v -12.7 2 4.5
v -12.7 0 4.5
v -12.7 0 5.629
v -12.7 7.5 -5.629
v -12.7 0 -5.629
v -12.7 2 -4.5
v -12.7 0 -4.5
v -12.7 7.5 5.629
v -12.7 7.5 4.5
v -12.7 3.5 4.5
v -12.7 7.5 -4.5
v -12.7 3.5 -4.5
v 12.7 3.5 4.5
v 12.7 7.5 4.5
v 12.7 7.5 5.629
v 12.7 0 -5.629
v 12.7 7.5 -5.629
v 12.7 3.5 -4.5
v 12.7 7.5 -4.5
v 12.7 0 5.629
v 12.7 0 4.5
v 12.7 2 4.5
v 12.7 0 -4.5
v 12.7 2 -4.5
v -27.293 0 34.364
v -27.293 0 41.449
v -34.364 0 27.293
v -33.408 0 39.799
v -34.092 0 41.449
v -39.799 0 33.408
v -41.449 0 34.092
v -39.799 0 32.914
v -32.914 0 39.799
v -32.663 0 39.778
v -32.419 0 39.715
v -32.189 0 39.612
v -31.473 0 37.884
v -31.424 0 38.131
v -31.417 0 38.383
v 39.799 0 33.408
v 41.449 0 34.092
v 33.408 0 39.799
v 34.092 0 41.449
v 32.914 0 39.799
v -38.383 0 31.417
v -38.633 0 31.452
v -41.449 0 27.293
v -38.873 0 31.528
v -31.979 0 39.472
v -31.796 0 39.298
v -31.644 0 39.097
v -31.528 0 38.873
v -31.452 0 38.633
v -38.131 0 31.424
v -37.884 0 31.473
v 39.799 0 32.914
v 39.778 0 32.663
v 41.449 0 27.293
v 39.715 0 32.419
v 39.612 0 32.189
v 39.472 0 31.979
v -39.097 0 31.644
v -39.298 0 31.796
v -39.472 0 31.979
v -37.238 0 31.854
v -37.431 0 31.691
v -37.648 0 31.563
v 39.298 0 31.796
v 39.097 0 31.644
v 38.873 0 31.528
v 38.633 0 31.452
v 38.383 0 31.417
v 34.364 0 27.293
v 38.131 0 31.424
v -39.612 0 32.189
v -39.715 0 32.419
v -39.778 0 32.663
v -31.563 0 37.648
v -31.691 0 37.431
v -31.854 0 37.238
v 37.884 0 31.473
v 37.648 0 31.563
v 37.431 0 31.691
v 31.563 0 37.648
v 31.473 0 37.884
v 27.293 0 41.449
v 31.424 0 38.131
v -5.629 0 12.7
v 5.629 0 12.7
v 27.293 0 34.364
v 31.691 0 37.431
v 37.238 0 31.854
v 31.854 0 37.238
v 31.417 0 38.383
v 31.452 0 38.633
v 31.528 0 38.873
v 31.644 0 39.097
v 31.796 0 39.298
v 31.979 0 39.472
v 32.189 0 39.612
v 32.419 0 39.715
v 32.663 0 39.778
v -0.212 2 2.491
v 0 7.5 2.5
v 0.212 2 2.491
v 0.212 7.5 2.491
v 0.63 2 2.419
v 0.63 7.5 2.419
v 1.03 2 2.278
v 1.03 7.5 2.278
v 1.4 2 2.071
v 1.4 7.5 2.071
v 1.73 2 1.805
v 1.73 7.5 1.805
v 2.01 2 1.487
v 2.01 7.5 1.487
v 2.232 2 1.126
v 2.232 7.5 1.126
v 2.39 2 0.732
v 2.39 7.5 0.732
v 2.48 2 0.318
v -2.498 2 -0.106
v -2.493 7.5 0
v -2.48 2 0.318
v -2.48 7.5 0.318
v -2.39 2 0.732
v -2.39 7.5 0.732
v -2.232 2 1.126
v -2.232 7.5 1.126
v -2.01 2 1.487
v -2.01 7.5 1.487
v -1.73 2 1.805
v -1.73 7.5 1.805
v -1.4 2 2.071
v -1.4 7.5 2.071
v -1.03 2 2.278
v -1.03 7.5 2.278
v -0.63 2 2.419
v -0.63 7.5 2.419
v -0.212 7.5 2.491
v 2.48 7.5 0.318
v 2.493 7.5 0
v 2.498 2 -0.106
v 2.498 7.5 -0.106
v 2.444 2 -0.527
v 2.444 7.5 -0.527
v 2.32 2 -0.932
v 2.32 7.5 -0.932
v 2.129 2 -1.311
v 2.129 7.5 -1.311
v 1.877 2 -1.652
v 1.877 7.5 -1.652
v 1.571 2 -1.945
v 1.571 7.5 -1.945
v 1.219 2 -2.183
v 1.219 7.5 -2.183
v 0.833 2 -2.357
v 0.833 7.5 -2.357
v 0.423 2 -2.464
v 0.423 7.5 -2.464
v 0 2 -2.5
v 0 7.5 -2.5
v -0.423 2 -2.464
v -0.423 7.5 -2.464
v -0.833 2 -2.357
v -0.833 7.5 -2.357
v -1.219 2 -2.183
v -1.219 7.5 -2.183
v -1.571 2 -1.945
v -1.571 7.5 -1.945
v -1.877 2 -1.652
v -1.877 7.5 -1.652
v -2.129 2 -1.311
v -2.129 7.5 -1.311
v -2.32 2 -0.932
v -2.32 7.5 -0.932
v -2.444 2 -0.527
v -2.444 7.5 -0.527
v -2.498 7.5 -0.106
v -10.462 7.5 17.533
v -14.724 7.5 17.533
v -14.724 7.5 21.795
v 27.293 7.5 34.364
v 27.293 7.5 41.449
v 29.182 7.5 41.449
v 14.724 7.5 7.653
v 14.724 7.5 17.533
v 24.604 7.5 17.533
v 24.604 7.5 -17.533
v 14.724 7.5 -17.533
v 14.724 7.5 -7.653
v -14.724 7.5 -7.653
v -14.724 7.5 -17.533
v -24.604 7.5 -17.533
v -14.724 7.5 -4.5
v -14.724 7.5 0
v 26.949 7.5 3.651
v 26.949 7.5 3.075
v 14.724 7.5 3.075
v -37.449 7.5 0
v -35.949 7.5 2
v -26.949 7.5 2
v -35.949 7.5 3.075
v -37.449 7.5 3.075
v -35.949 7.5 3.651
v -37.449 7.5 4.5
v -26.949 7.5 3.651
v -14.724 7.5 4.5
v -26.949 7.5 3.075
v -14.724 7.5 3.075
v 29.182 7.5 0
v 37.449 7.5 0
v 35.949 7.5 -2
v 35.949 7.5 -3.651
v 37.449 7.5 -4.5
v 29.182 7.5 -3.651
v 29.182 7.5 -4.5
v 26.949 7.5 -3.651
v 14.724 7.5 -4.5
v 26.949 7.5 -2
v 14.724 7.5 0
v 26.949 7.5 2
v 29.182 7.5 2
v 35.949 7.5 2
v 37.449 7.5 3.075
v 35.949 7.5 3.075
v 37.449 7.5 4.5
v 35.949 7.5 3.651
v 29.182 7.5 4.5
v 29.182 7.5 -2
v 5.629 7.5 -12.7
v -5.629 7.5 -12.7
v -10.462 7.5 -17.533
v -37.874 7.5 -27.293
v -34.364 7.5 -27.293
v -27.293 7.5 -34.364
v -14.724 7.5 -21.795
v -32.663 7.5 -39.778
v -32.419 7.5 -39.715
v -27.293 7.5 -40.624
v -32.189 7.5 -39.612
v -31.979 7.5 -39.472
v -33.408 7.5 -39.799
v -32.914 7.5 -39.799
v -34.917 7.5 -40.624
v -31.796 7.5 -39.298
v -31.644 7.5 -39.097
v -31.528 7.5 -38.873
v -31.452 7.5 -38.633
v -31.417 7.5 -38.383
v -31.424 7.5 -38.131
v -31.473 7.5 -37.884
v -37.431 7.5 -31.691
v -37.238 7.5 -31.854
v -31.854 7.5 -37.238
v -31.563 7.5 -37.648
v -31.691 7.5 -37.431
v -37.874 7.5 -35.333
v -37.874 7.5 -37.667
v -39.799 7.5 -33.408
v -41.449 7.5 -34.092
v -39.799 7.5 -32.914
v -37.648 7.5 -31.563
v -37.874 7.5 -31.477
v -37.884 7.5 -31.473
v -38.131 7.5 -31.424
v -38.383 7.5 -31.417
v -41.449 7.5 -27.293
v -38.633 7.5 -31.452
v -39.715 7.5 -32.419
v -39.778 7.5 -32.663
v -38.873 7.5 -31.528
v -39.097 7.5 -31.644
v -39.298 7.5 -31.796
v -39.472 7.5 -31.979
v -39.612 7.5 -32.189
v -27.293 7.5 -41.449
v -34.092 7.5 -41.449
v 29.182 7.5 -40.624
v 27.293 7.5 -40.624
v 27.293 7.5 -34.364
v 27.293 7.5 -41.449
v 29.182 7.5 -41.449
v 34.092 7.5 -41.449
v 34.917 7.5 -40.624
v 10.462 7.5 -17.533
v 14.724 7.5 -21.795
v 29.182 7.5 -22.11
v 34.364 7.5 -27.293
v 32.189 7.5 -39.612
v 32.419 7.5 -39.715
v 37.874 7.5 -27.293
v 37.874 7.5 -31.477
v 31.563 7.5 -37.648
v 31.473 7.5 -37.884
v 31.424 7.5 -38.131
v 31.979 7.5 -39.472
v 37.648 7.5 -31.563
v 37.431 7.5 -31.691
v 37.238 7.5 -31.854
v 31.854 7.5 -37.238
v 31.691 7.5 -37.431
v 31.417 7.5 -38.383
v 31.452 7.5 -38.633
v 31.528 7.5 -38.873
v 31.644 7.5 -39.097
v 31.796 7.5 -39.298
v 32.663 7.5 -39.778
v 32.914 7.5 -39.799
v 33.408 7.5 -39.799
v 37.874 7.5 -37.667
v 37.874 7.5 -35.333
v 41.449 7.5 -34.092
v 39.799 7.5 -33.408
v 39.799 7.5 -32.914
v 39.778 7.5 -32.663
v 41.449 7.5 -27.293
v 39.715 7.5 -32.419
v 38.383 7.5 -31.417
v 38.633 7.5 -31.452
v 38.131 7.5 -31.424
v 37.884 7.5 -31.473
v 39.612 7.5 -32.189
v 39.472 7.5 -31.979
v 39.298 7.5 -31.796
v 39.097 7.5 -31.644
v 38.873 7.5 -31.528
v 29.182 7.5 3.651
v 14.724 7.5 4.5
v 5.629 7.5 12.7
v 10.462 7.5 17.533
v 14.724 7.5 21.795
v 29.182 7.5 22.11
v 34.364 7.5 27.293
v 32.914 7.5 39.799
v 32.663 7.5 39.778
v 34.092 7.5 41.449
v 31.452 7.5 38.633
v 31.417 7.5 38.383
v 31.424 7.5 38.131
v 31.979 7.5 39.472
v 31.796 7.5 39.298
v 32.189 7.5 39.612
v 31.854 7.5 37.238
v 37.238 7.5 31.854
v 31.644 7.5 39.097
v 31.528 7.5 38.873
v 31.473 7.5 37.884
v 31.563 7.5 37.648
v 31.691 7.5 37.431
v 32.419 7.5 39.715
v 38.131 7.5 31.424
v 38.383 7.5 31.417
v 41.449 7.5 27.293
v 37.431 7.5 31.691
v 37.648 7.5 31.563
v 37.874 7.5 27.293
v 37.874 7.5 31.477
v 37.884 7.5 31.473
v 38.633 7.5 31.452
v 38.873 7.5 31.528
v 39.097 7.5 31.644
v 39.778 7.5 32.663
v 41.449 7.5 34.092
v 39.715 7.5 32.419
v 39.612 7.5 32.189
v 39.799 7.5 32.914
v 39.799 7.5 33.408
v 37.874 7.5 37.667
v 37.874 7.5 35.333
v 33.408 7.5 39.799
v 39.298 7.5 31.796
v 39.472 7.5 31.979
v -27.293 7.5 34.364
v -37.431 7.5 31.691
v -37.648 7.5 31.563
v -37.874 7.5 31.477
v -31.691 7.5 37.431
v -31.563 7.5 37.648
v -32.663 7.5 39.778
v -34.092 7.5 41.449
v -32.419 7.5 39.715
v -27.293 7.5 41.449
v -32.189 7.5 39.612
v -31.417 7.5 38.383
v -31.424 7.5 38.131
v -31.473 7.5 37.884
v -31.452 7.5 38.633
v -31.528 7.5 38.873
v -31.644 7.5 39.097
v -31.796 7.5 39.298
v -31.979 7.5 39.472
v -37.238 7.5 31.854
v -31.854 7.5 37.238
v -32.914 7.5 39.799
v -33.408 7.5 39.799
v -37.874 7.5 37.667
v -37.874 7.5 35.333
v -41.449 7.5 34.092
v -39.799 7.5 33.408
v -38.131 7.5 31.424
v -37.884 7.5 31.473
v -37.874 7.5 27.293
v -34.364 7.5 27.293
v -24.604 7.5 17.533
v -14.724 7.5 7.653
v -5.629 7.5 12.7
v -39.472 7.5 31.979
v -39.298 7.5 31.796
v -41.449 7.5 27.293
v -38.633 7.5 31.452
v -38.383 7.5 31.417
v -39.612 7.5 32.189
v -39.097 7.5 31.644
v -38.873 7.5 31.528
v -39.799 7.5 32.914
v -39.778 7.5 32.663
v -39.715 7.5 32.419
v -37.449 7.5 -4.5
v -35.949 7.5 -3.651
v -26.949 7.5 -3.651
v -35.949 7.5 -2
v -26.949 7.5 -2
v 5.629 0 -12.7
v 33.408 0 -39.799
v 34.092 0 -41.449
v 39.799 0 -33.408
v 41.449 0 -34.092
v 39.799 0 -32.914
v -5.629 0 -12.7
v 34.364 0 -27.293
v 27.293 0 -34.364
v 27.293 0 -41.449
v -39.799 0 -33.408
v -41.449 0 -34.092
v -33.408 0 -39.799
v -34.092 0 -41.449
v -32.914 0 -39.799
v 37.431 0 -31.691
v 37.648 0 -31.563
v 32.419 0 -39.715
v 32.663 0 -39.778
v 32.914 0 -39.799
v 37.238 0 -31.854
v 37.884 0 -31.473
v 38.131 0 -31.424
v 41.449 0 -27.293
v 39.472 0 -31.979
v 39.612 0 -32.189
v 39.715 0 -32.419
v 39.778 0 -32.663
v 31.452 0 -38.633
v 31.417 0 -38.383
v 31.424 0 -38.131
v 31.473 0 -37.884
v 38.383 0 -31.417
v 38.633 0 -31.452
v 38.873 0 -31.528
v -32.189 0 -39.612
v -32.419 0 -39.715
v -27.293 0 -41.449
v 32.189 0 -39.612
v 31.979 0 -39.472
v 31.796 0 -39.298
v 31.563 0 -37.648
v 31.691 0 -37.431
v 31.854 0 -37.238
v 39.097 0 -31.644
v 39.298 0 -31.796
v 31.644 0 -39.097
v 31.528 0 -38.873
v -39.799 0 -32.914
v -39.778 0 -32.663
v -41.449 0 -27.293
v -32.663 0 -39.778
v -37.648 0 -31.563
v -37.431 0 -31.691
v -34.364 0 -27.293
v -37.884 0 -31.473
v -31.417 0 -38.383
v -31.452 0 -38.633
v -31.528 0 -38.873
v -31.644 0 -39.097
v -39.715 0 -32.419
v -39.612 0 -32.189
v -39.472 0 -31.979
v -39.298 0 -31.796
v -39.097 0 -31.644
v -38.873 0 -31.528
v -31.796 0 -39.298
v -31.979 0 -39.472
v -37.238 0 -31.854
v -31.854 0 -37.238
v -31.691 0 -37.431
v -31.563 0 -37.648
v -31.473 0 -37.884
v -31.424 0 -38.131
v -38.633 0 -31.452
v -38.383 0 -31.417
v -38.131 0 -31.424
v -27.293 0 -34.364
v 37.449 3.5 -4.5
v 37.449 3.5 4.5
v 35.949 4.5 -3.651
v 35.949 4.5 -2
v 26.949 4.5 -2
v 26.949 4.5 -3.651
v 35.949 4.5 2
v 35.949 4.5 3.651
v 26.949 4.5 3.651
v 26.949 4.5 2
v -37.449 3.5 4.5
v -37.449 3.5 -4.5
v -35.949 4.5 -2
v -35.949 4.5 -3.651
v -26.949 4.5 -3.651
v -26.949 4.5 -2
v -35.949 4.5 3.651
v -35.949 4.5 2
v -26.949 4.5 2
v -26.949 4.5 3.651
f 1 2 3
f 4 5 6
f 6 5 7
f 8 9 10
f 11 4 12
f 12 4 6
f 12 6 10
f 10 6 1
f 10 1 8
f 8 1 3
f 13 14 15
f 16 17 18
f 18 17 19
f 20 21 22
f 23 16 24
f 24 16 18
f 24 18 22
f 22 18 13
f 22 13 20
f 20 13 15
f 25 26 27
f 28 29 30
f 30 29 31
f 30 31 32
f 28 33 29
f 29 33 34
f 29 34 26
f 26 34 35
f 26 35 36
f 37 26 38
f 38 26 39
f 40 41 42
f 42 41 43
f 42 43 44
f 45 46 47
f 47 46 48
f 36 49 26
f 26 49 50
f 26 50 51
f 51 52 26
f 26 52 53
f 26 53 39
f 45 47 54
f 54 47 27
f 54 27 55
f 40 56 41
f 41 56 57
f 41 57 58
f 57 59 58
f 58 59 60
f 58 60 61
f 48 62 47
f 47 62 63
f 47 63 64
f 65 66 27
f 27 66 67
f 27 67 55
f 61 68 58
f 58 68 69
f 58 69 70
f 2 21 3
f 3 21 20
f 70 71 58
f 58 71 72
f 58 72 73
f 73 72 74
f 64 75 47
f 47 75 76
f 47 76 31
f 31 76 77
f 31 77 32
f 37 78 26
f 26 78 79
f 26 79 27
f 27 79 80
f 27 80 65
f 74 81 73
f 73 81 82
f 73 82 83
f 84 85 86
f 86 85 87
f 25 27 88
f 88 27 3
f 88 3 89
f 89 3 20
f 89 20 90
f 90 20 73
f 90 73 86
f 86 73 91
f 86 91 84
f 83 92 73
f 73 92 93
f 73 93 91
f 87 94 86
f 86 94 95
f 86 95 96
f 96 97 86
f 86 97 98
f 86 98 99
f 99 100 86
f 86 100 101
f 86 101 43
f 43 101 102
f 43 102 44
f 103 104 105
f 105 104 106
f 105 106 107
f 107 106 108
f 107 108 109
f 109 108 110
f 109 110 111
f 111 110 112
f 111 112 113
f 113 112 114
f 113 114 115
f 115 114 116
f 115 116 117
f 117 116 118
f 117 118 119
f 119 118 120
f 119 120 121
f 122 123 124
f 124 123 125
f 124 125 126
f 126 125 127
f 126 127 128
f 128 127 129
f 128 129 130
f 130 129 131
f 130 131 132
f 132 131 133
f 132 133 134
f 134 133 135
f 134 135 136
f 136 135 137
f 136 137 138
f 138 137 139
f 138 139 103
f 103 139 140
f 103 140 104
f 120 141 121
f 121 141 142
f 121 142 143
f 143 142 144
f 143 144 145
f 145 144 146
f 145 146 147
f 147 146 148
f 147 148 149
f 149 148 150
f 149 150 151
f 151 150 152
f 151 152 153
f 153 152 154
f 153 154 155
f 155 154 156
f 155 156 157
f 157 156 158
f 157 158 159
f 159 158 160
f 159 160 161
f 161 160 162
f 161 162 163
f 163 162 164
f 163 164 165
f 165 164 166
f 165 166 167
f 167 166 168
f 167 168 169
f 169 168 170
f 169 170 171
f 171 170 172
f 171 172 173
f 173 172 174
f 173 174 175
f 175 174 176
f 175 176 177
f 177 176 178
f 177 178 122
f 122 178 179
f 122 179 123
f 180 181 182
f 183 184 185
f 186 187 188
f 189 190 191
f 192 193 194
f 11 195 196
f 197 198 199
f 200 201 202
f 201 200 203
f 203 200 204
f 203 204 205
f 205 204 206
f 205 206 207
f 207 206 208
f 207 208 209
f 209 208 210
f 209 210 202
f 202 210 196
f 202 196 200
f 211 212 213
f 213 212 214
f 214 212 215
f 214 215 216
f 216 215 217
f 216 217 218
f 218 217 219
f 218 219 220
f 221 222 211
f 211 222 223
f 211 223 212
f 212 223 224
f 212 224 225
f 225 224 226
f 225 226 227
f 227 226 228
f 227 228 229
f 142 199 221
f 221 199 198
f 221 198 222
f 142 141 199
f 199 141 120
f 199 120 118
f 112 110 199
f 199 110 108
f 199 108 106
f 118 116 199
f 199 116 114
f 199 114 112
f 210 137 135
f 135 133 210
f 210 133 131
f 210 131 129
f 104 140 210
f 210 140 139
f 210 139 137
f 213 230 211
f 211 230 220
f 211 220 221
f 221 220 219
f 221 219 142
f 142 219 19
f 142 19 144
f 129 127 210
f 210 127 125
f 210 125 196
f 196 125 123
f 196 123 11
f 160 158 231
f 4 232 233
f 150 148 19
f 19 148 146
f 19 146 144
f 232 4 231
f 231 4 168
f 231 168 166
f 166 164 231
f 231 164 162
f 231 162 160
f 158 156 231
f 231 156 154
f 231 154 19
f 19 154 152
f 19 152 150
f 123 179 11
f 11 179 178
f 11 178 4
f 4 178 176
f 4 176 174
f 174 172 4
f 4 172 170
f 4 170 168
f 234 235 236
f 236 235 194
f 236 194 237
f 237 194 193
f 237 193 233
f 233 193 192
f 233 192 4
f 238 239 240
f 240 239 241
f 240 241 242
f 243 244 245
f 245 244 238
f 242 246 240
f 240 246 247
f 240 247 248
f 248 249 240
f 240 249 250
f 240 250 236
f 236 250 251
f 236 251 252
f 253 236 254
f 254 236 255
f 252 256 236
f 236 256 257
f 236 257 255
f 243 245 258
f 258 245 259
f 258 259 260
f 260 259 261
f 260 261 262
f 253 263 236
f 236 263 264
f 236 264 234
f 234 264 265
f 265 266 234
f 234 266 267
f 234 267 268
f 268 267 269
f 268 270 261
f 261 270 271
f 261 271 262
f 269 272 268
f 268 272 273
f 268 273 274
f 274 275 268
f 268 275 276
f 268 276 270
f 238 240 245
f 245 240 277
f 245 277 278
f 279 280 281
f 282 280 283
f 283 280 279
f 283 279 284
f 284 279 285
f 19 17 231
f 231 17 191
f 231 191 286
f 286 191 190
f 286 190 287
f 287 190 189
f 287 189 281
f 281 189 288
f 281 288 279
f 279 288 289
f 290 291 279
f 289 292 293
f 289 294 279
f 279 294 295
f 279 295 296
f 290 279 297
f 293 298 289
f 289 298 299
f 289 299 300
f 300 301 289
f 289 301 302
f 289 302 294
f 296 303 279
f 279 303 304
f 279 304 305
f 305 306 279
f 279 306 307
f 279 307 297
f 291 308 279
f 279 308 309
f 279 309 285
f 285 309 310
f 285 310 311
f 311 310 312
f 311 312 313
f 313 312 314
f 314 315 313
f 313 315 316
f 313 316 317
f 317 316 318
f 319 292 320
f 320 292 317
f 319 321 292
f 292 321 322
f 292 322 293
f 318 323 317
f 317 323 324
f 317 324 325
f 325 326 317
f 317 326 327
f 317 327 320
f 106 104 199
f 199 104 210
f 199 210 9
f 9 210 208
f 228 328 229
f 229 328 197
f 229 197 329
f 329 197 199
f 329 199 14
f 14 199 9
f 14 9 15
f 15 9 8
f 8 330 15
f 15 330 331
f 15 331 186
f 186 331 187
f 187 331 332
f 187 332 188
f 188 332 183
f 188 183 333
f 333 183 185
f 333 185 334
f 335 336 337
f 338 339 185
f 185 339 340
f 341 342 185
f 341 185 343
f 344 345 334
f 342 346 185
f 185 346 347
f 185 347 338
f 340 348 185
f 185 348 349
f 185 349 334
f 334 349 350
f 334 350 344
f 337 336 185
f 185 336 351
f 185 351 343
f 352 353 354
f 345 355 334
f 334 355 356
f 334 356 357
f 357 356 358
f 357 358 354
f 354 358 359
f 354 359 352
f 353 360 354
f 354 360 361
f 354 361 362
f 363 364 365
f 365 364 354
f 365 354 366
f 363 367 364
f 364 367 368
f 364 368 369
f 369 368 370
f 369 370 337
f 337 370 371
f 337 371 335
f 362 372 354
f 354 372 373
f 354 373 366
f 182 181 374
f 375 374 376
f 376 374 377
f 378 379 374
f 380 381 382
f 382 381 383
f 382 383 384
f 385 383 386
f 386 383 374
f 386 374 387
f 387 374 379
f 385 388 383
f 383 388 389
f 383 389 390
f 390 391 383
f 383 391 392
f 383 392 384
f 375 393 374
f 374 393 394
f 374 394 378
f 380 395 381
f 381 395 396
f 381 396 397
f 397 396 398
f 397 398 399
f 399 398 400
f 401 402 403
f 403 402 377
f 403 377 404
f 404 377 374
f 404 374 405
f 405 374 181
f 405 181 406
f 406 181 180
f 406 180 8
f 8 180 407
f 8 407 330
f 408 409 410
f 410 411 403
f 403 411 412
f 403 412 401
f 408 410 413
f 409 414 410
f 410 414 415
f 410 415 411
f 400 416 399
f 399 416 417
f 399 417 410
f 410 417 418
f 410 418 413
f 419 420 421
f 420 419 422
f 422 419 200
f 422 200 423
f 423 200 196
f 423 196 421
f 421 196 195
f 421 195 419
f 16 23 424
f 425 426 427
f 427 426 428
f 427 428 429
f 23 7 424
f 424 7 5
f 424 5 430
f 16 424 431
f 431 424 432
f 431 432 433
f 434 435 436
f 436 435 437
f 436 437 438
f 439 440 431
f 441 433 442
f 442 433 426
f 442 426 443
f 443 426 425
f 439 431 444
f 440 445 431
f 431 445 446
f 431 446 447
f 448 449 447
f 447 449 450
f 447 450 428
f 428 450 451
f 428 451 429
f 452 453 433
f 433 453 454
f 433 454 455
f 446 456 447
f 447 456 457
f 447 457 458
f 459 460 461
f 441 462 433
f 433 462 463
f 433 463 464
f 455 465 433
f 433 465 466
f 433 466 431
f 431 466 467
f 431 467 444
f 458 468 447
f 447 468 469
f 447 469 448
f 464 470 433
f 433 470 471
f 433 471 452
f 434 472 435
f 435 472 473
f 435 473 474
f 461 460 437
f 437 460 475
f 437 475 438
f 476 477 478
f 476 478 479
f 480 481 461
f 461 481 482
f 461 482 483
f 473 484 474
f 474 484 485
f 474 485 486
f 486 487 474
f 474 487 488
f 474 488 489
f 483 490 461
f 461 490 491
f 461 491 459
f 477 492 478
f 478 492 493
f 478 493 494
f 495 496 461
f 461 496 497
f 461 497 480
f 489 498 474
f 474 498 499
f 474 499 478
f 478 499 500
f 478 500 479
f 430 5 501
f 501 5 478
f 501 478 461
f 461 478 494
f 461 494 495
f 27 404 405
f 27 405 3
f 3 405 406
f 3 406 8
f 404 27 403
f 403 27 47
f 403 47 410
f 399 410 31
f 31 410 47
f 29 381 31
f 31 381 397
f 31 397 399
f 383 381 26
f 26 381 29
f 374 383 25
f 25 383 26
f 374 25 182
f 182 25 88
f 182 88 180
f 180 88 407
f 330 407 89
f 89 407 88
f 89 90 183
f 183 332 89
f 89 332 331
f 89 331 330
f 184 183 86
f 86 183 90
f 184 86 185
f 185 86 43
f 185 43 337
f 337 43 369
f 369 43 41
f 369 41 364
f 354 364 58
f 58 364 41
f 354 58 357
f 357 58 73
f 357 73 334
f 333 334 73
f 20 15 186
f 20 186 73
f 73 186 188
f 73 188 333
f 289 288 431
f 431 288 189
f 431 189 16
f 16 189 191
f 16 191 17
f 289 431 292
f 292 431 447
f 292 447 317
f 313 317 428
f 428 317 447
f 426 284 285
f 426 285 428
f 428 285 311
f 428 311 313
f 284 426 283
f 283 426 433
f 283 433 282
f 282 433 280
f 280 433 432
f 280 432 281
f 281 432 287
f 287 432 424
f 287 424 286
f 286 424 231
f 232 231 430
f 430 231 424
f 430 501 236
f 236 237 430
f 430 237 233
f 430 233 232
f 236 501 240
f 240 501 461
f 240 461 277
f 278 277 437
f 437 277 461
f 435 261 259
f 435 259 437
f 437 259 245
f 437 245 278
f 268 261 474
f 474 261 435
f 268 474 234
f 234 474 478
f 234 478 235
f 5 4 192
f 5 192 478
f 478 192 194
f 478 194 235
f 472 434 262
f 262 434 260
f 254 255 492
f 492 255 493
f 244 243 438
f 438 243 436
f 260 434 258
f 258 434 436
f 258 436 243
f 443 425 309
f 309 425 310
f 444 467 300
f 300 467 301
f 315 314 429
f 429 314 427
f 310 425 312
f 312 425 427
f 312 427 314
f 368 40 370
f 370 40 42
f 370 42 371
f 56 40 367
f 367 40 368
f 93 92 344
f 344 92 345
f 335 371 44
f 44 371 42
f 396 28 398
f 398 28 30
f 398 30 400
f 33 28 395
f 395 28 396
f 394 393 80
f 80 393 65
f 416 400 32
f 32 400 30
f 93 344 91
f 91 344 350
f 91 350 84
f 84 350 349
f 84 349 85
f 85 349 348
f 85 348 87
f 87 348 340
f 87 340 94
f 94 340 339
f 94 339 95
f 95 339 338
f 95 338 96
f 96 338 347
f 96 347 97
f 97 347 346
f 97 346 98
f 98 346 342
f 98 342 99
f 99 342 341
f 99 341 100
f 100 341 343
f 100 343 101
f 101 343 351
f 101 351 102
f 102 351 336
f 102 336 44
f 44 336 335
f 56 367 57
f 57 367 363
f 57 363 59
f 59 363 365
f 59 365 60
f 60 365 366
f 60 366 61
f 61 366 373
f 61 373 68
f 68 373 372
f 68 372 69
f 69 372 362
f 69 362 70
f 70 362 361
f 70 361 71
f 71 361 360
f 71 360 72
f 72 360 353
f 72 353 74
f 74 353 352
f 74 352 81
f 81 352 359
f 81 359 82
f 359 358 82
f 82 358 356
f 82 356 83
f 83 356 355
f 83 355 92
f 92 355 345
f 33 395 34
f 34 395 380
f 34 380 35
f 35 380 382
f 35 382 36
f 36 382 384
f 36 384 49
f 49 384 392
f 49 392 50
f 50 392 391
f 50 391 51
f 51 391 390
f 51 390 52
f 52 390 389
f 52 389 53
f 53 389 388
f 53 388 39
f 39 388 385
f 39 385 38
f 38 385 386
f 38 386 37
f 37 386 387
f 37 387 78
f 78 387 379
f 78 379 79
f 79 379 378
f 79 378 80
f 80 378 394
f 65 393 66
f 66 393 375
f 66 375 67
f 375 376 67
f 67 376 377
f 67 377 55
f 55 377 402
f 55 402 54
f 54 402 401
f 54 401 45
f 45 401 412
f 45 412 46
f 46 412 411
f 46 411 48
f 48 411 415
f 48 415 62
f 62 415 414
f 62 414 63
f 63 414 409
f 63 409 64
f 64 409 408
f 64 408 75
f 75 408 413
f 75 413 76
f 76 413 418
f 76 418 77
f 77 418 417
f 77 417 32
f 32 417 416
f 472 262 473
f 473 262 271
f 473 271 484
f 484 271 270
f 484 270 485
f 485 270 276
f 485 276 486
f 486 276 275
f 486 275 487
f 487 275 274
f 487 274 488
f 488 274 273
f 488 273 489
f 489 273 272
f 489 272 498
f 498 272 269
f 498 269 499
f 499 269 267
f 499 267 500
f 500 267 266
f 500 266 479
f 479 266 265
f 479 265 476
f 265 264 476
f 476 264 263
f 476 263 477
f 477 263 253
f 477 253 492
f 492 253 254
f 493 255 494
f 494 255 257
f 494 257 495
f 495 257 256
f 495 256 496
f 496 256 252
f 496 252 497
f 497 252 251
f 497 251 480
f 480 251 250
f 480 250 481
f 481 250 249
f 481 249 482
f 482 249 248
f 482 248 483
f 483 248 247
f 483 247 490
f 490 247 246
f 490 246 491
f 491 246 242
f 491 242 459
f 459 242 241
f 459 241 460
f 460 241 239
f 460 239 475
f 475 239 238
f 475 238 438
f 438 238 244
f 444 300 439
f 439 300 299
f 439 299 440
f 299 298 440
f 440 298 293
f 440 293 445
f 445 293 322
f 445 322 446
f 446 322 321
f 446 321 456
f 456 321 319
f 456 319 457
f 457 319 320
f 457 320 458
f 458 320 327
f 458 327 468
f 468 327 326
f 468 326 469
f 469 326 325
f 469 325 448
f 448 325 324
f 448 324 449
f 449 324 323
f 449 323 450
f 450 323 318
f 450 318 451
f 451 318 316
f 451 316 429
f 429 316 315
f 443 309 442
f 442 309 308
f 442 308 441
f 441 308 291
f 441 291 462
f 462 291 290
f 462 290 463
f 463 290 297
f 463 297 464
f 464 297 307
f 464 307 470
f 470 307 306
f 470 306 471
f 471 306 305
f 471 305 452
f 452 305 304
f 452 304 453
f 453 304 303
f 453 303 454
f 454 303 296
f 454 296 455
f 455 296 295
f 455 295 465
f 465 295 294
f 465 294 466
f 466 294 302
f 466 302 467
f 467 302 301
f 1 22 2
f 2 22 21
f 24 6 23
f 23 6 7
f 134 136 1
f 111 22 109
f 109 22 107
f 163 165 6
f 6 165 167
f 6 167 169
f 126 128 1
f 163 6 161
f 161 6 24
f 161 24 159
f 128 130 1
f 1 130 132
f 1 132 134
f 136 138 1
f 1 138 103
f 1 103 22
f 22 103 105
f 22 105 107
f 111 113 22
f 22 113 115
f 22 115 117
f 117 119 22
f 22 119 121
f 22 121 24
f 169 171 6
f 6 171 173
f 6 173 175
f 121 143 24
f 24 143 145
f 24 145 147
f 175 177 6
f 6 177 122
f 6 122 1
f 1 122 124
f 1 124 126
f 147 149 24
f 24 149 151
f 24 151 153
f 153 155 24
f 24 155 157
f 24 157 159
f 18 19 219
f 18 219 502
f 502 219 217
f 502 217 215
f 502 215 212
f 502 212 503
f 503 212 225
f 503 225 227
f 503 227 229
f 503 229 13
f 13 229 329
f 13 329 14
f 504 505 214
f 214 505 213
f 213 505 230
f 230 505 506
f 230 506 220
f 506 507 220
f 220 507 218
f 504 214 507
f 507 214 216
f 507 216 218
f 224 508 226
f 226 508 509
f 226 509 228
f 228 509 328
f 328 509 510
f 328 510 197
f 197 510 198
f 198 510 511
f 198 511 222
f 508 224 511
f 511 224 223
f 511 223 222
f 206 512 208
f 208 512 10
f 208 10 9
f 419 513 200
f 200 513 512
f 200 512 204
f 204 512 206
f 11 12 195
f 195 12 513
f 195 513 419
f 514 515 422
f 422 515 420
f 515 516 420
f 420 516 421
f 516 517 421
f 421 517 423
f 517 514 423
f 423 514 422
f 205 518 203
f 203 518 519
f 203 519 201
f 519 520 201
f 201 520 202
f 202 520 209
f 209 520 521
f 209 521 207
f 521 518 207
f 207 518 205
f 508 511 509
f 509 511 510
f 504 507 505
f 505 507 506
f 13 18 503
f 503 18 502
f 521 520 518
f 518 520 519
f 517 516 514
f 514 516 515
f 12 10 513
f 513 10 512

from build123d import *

# Parameters (mm, degrees)
SKETCH1_R           = 2.5
BOSS_EXTRUDE1_DEPTH = 7.5
FILLET3_R           = 1.5
SKETCH3_W           = 25.4
SKETCH3_H           = 9
CUT_EXTRUDE1_DEPTH  = 2
SKETCH2_W           = 24.748800006
SKETCH2_H           = 9
SKETCH2_W_2         = 9
SKETCH2_H_2         = 1.651
BOSS_EXTRUDE3_DEPTH = 3
SKETCH4_W           = 24.748800006
SKETCH4_H           = 9
BOSS_EXTRUDE4_DEPTH = 1


with BuildPart() as part:
    # Sketch1 → Boss-Extrude1 (new body)
    with BuildSketch(Plane(origin=(0, 0, 0), x_dir=(1, 0, 0), z_dir=(0, 1, 0))):
        Polygon((-41.448800006, 34.091704203), (-34.091704203, 41.448800006), (-27.292890359, 41.448800006), (-27.292890359, 34.363958171), (-5.628932188, 12.7), (5.628932188, 12.7), (27.292890359, 34.363958171), (27.292890359, 41.448800006), (34.091704203, 41.448800006), (41.448800006, 34.091704203), (41.448800006, 27.292890359), (34.363958171, 27.292890359), (12.7, 5.628932188), (12.7, -5.628932188), (34.363958171, -27.292890359), (41.448800006, -27.292890359), (41.448800006, -34.091704203), (34.091704203, -41.448800006), (27.292890359, -41.448800006), (27.292890359, -34.363958171), (5.628932188, -12.7), (-5.628932188, -12.7), (-27.292890359, -34.363958171), (-27.292890359, -41.448800006), (-34.091704203, -41.448800006), (-41.448800006, -34.091704203), (-41.448800006, -27.292890359), (-34.363958171, -27.292890359), (-12.7, -5.628932188), (-12.7, 5.628932188), (-34.363958171, 27.292890359), (-41.448800006, 27.292890359), align=None)
        with Locations(Location((0, 0, 0), (0, 0, 270))):
            Circle(SKETCH1_R, mode=Mode.SUBTRACT)
        Polygon((-39.798800006, 33.408251825), (-33.408251825, 39.798800006), (-29.292890359, 39.798800006), (-39.798800006, 29.292890359), align=None, mode=Mode.SUBTRACT)
        Polygon((-33.408251825, -39.798800006), (-29.292890359, -39.798800006), (-39.798800006, -29.292890359), (-39.798800006, -33.408251825), align=None, mode=Mode.SUBTRACT)
        Polygon((39.798800006, -33.408251825), (39.798800006, -29.292890359), (29.292890359, -39.798800006), (33.408251825, -39.798800006), align=None, mode=Mode.SUBTRACT)
        Polygon((33.408251825, 39.798800006), (39.798800006, 33.408251825), (39.798800006, 29.292890359), (29.292890359, 39.798800006), align=None, mode=Mode.SUBTRACT)
    extrude(amount=BOSS_EXTRUDE1_DEPTH)

    # Fillet3
    fillet3_edges = [part.edges().sort_by_distance(p)[0] for p in [
        (39.798800006, 3.75, 29.292890359),
        (29.292890359, 3.75, 39.798800006),
        (-29.292890359, 3.75, 39.798800006),
        (-39.798800006, 3.75, 29.292890359),
        (-39.798800006, 3.75, -29.292890359),
        (-29.292890359, 3.75, -39.798800006),
        (29.292890359, 3.75, -39.798800006),
        (39.798800006, 3.75, -29.292890359),
    ]]
    fillet(fillet3_edges, radius=FILLET3_R)

    # Sketch3 → Cut-Extrude1 (cut)
    with BuildSketch(Plane.XZ):
        Rectangle(SKETCH3_W, SKETCH3_H)
    extrude(amount=-CUT_EXTRUDE1_DEPTH, mode=Mode.SUBTRACT)

    # Sketch2 → Boss-Extrude3 (add)
    # profile 1 of 2: a face of its own
    with BuildSketch(Plane(origin=(0, 7.5, 0), x_dir=(1, 0, 0), z_dir=(0, 1, 0))):
        with Locations((25.074400003, 0)):
            Rectangle(SKETCH2_W, SKETCH2_H)
        with Locations((31.448800006, 2.8255)):
            Rectangle(SKETCH2_W_2, SKETCH2_H_2, mode=Mode.SUBTRACT)
        with Locations((31.448800006, -2.8255)):
            Rectangle(SKETCH2_W_2, SKETCH2_H_2, mode=Mode.SUBTRACT)
    # profile 2 of 2: a face of its own
    with BuildSketch(Plane(origin=(0, 7.5, 0), x_dir=(1, 0, 0), z_dir=(0, 1, 0))):
        with Locations((-25.074400003, 0)):
            Rectangle(SKETCH2_W, SKETCH2_H)
        with Locations((-31.448800006, 2.8255)):
            Rectangle(SKETCH2_W_2, SKETCH2_H_2, mode=Mode.SUBTRACT)
        with Locations((-31.448800006, -2.8255)):
            Rectangle(SKETCH2_W_2, SKETCH2_H_2, mode=Mode.SUBTRACT)
    extrude(amount=-BOSS_EXTRUDE3_DEPTH)

    # Sketch4 → Boss-Extrude4 (add)
    with BuildSketch(Plane.XZ.offset(-4.5)):
        with Locations((25.074400003, 0)):
            Rectangle(SKETCH4_W, SKETCH4_H)
        with Locations((-25.074400003, 0)):
            Rectangle(SKETCH4_W, SKETCH4_H)
    extrude(amount=BOSS_EXTRUDE4_DEPTH)


solid = part.part
